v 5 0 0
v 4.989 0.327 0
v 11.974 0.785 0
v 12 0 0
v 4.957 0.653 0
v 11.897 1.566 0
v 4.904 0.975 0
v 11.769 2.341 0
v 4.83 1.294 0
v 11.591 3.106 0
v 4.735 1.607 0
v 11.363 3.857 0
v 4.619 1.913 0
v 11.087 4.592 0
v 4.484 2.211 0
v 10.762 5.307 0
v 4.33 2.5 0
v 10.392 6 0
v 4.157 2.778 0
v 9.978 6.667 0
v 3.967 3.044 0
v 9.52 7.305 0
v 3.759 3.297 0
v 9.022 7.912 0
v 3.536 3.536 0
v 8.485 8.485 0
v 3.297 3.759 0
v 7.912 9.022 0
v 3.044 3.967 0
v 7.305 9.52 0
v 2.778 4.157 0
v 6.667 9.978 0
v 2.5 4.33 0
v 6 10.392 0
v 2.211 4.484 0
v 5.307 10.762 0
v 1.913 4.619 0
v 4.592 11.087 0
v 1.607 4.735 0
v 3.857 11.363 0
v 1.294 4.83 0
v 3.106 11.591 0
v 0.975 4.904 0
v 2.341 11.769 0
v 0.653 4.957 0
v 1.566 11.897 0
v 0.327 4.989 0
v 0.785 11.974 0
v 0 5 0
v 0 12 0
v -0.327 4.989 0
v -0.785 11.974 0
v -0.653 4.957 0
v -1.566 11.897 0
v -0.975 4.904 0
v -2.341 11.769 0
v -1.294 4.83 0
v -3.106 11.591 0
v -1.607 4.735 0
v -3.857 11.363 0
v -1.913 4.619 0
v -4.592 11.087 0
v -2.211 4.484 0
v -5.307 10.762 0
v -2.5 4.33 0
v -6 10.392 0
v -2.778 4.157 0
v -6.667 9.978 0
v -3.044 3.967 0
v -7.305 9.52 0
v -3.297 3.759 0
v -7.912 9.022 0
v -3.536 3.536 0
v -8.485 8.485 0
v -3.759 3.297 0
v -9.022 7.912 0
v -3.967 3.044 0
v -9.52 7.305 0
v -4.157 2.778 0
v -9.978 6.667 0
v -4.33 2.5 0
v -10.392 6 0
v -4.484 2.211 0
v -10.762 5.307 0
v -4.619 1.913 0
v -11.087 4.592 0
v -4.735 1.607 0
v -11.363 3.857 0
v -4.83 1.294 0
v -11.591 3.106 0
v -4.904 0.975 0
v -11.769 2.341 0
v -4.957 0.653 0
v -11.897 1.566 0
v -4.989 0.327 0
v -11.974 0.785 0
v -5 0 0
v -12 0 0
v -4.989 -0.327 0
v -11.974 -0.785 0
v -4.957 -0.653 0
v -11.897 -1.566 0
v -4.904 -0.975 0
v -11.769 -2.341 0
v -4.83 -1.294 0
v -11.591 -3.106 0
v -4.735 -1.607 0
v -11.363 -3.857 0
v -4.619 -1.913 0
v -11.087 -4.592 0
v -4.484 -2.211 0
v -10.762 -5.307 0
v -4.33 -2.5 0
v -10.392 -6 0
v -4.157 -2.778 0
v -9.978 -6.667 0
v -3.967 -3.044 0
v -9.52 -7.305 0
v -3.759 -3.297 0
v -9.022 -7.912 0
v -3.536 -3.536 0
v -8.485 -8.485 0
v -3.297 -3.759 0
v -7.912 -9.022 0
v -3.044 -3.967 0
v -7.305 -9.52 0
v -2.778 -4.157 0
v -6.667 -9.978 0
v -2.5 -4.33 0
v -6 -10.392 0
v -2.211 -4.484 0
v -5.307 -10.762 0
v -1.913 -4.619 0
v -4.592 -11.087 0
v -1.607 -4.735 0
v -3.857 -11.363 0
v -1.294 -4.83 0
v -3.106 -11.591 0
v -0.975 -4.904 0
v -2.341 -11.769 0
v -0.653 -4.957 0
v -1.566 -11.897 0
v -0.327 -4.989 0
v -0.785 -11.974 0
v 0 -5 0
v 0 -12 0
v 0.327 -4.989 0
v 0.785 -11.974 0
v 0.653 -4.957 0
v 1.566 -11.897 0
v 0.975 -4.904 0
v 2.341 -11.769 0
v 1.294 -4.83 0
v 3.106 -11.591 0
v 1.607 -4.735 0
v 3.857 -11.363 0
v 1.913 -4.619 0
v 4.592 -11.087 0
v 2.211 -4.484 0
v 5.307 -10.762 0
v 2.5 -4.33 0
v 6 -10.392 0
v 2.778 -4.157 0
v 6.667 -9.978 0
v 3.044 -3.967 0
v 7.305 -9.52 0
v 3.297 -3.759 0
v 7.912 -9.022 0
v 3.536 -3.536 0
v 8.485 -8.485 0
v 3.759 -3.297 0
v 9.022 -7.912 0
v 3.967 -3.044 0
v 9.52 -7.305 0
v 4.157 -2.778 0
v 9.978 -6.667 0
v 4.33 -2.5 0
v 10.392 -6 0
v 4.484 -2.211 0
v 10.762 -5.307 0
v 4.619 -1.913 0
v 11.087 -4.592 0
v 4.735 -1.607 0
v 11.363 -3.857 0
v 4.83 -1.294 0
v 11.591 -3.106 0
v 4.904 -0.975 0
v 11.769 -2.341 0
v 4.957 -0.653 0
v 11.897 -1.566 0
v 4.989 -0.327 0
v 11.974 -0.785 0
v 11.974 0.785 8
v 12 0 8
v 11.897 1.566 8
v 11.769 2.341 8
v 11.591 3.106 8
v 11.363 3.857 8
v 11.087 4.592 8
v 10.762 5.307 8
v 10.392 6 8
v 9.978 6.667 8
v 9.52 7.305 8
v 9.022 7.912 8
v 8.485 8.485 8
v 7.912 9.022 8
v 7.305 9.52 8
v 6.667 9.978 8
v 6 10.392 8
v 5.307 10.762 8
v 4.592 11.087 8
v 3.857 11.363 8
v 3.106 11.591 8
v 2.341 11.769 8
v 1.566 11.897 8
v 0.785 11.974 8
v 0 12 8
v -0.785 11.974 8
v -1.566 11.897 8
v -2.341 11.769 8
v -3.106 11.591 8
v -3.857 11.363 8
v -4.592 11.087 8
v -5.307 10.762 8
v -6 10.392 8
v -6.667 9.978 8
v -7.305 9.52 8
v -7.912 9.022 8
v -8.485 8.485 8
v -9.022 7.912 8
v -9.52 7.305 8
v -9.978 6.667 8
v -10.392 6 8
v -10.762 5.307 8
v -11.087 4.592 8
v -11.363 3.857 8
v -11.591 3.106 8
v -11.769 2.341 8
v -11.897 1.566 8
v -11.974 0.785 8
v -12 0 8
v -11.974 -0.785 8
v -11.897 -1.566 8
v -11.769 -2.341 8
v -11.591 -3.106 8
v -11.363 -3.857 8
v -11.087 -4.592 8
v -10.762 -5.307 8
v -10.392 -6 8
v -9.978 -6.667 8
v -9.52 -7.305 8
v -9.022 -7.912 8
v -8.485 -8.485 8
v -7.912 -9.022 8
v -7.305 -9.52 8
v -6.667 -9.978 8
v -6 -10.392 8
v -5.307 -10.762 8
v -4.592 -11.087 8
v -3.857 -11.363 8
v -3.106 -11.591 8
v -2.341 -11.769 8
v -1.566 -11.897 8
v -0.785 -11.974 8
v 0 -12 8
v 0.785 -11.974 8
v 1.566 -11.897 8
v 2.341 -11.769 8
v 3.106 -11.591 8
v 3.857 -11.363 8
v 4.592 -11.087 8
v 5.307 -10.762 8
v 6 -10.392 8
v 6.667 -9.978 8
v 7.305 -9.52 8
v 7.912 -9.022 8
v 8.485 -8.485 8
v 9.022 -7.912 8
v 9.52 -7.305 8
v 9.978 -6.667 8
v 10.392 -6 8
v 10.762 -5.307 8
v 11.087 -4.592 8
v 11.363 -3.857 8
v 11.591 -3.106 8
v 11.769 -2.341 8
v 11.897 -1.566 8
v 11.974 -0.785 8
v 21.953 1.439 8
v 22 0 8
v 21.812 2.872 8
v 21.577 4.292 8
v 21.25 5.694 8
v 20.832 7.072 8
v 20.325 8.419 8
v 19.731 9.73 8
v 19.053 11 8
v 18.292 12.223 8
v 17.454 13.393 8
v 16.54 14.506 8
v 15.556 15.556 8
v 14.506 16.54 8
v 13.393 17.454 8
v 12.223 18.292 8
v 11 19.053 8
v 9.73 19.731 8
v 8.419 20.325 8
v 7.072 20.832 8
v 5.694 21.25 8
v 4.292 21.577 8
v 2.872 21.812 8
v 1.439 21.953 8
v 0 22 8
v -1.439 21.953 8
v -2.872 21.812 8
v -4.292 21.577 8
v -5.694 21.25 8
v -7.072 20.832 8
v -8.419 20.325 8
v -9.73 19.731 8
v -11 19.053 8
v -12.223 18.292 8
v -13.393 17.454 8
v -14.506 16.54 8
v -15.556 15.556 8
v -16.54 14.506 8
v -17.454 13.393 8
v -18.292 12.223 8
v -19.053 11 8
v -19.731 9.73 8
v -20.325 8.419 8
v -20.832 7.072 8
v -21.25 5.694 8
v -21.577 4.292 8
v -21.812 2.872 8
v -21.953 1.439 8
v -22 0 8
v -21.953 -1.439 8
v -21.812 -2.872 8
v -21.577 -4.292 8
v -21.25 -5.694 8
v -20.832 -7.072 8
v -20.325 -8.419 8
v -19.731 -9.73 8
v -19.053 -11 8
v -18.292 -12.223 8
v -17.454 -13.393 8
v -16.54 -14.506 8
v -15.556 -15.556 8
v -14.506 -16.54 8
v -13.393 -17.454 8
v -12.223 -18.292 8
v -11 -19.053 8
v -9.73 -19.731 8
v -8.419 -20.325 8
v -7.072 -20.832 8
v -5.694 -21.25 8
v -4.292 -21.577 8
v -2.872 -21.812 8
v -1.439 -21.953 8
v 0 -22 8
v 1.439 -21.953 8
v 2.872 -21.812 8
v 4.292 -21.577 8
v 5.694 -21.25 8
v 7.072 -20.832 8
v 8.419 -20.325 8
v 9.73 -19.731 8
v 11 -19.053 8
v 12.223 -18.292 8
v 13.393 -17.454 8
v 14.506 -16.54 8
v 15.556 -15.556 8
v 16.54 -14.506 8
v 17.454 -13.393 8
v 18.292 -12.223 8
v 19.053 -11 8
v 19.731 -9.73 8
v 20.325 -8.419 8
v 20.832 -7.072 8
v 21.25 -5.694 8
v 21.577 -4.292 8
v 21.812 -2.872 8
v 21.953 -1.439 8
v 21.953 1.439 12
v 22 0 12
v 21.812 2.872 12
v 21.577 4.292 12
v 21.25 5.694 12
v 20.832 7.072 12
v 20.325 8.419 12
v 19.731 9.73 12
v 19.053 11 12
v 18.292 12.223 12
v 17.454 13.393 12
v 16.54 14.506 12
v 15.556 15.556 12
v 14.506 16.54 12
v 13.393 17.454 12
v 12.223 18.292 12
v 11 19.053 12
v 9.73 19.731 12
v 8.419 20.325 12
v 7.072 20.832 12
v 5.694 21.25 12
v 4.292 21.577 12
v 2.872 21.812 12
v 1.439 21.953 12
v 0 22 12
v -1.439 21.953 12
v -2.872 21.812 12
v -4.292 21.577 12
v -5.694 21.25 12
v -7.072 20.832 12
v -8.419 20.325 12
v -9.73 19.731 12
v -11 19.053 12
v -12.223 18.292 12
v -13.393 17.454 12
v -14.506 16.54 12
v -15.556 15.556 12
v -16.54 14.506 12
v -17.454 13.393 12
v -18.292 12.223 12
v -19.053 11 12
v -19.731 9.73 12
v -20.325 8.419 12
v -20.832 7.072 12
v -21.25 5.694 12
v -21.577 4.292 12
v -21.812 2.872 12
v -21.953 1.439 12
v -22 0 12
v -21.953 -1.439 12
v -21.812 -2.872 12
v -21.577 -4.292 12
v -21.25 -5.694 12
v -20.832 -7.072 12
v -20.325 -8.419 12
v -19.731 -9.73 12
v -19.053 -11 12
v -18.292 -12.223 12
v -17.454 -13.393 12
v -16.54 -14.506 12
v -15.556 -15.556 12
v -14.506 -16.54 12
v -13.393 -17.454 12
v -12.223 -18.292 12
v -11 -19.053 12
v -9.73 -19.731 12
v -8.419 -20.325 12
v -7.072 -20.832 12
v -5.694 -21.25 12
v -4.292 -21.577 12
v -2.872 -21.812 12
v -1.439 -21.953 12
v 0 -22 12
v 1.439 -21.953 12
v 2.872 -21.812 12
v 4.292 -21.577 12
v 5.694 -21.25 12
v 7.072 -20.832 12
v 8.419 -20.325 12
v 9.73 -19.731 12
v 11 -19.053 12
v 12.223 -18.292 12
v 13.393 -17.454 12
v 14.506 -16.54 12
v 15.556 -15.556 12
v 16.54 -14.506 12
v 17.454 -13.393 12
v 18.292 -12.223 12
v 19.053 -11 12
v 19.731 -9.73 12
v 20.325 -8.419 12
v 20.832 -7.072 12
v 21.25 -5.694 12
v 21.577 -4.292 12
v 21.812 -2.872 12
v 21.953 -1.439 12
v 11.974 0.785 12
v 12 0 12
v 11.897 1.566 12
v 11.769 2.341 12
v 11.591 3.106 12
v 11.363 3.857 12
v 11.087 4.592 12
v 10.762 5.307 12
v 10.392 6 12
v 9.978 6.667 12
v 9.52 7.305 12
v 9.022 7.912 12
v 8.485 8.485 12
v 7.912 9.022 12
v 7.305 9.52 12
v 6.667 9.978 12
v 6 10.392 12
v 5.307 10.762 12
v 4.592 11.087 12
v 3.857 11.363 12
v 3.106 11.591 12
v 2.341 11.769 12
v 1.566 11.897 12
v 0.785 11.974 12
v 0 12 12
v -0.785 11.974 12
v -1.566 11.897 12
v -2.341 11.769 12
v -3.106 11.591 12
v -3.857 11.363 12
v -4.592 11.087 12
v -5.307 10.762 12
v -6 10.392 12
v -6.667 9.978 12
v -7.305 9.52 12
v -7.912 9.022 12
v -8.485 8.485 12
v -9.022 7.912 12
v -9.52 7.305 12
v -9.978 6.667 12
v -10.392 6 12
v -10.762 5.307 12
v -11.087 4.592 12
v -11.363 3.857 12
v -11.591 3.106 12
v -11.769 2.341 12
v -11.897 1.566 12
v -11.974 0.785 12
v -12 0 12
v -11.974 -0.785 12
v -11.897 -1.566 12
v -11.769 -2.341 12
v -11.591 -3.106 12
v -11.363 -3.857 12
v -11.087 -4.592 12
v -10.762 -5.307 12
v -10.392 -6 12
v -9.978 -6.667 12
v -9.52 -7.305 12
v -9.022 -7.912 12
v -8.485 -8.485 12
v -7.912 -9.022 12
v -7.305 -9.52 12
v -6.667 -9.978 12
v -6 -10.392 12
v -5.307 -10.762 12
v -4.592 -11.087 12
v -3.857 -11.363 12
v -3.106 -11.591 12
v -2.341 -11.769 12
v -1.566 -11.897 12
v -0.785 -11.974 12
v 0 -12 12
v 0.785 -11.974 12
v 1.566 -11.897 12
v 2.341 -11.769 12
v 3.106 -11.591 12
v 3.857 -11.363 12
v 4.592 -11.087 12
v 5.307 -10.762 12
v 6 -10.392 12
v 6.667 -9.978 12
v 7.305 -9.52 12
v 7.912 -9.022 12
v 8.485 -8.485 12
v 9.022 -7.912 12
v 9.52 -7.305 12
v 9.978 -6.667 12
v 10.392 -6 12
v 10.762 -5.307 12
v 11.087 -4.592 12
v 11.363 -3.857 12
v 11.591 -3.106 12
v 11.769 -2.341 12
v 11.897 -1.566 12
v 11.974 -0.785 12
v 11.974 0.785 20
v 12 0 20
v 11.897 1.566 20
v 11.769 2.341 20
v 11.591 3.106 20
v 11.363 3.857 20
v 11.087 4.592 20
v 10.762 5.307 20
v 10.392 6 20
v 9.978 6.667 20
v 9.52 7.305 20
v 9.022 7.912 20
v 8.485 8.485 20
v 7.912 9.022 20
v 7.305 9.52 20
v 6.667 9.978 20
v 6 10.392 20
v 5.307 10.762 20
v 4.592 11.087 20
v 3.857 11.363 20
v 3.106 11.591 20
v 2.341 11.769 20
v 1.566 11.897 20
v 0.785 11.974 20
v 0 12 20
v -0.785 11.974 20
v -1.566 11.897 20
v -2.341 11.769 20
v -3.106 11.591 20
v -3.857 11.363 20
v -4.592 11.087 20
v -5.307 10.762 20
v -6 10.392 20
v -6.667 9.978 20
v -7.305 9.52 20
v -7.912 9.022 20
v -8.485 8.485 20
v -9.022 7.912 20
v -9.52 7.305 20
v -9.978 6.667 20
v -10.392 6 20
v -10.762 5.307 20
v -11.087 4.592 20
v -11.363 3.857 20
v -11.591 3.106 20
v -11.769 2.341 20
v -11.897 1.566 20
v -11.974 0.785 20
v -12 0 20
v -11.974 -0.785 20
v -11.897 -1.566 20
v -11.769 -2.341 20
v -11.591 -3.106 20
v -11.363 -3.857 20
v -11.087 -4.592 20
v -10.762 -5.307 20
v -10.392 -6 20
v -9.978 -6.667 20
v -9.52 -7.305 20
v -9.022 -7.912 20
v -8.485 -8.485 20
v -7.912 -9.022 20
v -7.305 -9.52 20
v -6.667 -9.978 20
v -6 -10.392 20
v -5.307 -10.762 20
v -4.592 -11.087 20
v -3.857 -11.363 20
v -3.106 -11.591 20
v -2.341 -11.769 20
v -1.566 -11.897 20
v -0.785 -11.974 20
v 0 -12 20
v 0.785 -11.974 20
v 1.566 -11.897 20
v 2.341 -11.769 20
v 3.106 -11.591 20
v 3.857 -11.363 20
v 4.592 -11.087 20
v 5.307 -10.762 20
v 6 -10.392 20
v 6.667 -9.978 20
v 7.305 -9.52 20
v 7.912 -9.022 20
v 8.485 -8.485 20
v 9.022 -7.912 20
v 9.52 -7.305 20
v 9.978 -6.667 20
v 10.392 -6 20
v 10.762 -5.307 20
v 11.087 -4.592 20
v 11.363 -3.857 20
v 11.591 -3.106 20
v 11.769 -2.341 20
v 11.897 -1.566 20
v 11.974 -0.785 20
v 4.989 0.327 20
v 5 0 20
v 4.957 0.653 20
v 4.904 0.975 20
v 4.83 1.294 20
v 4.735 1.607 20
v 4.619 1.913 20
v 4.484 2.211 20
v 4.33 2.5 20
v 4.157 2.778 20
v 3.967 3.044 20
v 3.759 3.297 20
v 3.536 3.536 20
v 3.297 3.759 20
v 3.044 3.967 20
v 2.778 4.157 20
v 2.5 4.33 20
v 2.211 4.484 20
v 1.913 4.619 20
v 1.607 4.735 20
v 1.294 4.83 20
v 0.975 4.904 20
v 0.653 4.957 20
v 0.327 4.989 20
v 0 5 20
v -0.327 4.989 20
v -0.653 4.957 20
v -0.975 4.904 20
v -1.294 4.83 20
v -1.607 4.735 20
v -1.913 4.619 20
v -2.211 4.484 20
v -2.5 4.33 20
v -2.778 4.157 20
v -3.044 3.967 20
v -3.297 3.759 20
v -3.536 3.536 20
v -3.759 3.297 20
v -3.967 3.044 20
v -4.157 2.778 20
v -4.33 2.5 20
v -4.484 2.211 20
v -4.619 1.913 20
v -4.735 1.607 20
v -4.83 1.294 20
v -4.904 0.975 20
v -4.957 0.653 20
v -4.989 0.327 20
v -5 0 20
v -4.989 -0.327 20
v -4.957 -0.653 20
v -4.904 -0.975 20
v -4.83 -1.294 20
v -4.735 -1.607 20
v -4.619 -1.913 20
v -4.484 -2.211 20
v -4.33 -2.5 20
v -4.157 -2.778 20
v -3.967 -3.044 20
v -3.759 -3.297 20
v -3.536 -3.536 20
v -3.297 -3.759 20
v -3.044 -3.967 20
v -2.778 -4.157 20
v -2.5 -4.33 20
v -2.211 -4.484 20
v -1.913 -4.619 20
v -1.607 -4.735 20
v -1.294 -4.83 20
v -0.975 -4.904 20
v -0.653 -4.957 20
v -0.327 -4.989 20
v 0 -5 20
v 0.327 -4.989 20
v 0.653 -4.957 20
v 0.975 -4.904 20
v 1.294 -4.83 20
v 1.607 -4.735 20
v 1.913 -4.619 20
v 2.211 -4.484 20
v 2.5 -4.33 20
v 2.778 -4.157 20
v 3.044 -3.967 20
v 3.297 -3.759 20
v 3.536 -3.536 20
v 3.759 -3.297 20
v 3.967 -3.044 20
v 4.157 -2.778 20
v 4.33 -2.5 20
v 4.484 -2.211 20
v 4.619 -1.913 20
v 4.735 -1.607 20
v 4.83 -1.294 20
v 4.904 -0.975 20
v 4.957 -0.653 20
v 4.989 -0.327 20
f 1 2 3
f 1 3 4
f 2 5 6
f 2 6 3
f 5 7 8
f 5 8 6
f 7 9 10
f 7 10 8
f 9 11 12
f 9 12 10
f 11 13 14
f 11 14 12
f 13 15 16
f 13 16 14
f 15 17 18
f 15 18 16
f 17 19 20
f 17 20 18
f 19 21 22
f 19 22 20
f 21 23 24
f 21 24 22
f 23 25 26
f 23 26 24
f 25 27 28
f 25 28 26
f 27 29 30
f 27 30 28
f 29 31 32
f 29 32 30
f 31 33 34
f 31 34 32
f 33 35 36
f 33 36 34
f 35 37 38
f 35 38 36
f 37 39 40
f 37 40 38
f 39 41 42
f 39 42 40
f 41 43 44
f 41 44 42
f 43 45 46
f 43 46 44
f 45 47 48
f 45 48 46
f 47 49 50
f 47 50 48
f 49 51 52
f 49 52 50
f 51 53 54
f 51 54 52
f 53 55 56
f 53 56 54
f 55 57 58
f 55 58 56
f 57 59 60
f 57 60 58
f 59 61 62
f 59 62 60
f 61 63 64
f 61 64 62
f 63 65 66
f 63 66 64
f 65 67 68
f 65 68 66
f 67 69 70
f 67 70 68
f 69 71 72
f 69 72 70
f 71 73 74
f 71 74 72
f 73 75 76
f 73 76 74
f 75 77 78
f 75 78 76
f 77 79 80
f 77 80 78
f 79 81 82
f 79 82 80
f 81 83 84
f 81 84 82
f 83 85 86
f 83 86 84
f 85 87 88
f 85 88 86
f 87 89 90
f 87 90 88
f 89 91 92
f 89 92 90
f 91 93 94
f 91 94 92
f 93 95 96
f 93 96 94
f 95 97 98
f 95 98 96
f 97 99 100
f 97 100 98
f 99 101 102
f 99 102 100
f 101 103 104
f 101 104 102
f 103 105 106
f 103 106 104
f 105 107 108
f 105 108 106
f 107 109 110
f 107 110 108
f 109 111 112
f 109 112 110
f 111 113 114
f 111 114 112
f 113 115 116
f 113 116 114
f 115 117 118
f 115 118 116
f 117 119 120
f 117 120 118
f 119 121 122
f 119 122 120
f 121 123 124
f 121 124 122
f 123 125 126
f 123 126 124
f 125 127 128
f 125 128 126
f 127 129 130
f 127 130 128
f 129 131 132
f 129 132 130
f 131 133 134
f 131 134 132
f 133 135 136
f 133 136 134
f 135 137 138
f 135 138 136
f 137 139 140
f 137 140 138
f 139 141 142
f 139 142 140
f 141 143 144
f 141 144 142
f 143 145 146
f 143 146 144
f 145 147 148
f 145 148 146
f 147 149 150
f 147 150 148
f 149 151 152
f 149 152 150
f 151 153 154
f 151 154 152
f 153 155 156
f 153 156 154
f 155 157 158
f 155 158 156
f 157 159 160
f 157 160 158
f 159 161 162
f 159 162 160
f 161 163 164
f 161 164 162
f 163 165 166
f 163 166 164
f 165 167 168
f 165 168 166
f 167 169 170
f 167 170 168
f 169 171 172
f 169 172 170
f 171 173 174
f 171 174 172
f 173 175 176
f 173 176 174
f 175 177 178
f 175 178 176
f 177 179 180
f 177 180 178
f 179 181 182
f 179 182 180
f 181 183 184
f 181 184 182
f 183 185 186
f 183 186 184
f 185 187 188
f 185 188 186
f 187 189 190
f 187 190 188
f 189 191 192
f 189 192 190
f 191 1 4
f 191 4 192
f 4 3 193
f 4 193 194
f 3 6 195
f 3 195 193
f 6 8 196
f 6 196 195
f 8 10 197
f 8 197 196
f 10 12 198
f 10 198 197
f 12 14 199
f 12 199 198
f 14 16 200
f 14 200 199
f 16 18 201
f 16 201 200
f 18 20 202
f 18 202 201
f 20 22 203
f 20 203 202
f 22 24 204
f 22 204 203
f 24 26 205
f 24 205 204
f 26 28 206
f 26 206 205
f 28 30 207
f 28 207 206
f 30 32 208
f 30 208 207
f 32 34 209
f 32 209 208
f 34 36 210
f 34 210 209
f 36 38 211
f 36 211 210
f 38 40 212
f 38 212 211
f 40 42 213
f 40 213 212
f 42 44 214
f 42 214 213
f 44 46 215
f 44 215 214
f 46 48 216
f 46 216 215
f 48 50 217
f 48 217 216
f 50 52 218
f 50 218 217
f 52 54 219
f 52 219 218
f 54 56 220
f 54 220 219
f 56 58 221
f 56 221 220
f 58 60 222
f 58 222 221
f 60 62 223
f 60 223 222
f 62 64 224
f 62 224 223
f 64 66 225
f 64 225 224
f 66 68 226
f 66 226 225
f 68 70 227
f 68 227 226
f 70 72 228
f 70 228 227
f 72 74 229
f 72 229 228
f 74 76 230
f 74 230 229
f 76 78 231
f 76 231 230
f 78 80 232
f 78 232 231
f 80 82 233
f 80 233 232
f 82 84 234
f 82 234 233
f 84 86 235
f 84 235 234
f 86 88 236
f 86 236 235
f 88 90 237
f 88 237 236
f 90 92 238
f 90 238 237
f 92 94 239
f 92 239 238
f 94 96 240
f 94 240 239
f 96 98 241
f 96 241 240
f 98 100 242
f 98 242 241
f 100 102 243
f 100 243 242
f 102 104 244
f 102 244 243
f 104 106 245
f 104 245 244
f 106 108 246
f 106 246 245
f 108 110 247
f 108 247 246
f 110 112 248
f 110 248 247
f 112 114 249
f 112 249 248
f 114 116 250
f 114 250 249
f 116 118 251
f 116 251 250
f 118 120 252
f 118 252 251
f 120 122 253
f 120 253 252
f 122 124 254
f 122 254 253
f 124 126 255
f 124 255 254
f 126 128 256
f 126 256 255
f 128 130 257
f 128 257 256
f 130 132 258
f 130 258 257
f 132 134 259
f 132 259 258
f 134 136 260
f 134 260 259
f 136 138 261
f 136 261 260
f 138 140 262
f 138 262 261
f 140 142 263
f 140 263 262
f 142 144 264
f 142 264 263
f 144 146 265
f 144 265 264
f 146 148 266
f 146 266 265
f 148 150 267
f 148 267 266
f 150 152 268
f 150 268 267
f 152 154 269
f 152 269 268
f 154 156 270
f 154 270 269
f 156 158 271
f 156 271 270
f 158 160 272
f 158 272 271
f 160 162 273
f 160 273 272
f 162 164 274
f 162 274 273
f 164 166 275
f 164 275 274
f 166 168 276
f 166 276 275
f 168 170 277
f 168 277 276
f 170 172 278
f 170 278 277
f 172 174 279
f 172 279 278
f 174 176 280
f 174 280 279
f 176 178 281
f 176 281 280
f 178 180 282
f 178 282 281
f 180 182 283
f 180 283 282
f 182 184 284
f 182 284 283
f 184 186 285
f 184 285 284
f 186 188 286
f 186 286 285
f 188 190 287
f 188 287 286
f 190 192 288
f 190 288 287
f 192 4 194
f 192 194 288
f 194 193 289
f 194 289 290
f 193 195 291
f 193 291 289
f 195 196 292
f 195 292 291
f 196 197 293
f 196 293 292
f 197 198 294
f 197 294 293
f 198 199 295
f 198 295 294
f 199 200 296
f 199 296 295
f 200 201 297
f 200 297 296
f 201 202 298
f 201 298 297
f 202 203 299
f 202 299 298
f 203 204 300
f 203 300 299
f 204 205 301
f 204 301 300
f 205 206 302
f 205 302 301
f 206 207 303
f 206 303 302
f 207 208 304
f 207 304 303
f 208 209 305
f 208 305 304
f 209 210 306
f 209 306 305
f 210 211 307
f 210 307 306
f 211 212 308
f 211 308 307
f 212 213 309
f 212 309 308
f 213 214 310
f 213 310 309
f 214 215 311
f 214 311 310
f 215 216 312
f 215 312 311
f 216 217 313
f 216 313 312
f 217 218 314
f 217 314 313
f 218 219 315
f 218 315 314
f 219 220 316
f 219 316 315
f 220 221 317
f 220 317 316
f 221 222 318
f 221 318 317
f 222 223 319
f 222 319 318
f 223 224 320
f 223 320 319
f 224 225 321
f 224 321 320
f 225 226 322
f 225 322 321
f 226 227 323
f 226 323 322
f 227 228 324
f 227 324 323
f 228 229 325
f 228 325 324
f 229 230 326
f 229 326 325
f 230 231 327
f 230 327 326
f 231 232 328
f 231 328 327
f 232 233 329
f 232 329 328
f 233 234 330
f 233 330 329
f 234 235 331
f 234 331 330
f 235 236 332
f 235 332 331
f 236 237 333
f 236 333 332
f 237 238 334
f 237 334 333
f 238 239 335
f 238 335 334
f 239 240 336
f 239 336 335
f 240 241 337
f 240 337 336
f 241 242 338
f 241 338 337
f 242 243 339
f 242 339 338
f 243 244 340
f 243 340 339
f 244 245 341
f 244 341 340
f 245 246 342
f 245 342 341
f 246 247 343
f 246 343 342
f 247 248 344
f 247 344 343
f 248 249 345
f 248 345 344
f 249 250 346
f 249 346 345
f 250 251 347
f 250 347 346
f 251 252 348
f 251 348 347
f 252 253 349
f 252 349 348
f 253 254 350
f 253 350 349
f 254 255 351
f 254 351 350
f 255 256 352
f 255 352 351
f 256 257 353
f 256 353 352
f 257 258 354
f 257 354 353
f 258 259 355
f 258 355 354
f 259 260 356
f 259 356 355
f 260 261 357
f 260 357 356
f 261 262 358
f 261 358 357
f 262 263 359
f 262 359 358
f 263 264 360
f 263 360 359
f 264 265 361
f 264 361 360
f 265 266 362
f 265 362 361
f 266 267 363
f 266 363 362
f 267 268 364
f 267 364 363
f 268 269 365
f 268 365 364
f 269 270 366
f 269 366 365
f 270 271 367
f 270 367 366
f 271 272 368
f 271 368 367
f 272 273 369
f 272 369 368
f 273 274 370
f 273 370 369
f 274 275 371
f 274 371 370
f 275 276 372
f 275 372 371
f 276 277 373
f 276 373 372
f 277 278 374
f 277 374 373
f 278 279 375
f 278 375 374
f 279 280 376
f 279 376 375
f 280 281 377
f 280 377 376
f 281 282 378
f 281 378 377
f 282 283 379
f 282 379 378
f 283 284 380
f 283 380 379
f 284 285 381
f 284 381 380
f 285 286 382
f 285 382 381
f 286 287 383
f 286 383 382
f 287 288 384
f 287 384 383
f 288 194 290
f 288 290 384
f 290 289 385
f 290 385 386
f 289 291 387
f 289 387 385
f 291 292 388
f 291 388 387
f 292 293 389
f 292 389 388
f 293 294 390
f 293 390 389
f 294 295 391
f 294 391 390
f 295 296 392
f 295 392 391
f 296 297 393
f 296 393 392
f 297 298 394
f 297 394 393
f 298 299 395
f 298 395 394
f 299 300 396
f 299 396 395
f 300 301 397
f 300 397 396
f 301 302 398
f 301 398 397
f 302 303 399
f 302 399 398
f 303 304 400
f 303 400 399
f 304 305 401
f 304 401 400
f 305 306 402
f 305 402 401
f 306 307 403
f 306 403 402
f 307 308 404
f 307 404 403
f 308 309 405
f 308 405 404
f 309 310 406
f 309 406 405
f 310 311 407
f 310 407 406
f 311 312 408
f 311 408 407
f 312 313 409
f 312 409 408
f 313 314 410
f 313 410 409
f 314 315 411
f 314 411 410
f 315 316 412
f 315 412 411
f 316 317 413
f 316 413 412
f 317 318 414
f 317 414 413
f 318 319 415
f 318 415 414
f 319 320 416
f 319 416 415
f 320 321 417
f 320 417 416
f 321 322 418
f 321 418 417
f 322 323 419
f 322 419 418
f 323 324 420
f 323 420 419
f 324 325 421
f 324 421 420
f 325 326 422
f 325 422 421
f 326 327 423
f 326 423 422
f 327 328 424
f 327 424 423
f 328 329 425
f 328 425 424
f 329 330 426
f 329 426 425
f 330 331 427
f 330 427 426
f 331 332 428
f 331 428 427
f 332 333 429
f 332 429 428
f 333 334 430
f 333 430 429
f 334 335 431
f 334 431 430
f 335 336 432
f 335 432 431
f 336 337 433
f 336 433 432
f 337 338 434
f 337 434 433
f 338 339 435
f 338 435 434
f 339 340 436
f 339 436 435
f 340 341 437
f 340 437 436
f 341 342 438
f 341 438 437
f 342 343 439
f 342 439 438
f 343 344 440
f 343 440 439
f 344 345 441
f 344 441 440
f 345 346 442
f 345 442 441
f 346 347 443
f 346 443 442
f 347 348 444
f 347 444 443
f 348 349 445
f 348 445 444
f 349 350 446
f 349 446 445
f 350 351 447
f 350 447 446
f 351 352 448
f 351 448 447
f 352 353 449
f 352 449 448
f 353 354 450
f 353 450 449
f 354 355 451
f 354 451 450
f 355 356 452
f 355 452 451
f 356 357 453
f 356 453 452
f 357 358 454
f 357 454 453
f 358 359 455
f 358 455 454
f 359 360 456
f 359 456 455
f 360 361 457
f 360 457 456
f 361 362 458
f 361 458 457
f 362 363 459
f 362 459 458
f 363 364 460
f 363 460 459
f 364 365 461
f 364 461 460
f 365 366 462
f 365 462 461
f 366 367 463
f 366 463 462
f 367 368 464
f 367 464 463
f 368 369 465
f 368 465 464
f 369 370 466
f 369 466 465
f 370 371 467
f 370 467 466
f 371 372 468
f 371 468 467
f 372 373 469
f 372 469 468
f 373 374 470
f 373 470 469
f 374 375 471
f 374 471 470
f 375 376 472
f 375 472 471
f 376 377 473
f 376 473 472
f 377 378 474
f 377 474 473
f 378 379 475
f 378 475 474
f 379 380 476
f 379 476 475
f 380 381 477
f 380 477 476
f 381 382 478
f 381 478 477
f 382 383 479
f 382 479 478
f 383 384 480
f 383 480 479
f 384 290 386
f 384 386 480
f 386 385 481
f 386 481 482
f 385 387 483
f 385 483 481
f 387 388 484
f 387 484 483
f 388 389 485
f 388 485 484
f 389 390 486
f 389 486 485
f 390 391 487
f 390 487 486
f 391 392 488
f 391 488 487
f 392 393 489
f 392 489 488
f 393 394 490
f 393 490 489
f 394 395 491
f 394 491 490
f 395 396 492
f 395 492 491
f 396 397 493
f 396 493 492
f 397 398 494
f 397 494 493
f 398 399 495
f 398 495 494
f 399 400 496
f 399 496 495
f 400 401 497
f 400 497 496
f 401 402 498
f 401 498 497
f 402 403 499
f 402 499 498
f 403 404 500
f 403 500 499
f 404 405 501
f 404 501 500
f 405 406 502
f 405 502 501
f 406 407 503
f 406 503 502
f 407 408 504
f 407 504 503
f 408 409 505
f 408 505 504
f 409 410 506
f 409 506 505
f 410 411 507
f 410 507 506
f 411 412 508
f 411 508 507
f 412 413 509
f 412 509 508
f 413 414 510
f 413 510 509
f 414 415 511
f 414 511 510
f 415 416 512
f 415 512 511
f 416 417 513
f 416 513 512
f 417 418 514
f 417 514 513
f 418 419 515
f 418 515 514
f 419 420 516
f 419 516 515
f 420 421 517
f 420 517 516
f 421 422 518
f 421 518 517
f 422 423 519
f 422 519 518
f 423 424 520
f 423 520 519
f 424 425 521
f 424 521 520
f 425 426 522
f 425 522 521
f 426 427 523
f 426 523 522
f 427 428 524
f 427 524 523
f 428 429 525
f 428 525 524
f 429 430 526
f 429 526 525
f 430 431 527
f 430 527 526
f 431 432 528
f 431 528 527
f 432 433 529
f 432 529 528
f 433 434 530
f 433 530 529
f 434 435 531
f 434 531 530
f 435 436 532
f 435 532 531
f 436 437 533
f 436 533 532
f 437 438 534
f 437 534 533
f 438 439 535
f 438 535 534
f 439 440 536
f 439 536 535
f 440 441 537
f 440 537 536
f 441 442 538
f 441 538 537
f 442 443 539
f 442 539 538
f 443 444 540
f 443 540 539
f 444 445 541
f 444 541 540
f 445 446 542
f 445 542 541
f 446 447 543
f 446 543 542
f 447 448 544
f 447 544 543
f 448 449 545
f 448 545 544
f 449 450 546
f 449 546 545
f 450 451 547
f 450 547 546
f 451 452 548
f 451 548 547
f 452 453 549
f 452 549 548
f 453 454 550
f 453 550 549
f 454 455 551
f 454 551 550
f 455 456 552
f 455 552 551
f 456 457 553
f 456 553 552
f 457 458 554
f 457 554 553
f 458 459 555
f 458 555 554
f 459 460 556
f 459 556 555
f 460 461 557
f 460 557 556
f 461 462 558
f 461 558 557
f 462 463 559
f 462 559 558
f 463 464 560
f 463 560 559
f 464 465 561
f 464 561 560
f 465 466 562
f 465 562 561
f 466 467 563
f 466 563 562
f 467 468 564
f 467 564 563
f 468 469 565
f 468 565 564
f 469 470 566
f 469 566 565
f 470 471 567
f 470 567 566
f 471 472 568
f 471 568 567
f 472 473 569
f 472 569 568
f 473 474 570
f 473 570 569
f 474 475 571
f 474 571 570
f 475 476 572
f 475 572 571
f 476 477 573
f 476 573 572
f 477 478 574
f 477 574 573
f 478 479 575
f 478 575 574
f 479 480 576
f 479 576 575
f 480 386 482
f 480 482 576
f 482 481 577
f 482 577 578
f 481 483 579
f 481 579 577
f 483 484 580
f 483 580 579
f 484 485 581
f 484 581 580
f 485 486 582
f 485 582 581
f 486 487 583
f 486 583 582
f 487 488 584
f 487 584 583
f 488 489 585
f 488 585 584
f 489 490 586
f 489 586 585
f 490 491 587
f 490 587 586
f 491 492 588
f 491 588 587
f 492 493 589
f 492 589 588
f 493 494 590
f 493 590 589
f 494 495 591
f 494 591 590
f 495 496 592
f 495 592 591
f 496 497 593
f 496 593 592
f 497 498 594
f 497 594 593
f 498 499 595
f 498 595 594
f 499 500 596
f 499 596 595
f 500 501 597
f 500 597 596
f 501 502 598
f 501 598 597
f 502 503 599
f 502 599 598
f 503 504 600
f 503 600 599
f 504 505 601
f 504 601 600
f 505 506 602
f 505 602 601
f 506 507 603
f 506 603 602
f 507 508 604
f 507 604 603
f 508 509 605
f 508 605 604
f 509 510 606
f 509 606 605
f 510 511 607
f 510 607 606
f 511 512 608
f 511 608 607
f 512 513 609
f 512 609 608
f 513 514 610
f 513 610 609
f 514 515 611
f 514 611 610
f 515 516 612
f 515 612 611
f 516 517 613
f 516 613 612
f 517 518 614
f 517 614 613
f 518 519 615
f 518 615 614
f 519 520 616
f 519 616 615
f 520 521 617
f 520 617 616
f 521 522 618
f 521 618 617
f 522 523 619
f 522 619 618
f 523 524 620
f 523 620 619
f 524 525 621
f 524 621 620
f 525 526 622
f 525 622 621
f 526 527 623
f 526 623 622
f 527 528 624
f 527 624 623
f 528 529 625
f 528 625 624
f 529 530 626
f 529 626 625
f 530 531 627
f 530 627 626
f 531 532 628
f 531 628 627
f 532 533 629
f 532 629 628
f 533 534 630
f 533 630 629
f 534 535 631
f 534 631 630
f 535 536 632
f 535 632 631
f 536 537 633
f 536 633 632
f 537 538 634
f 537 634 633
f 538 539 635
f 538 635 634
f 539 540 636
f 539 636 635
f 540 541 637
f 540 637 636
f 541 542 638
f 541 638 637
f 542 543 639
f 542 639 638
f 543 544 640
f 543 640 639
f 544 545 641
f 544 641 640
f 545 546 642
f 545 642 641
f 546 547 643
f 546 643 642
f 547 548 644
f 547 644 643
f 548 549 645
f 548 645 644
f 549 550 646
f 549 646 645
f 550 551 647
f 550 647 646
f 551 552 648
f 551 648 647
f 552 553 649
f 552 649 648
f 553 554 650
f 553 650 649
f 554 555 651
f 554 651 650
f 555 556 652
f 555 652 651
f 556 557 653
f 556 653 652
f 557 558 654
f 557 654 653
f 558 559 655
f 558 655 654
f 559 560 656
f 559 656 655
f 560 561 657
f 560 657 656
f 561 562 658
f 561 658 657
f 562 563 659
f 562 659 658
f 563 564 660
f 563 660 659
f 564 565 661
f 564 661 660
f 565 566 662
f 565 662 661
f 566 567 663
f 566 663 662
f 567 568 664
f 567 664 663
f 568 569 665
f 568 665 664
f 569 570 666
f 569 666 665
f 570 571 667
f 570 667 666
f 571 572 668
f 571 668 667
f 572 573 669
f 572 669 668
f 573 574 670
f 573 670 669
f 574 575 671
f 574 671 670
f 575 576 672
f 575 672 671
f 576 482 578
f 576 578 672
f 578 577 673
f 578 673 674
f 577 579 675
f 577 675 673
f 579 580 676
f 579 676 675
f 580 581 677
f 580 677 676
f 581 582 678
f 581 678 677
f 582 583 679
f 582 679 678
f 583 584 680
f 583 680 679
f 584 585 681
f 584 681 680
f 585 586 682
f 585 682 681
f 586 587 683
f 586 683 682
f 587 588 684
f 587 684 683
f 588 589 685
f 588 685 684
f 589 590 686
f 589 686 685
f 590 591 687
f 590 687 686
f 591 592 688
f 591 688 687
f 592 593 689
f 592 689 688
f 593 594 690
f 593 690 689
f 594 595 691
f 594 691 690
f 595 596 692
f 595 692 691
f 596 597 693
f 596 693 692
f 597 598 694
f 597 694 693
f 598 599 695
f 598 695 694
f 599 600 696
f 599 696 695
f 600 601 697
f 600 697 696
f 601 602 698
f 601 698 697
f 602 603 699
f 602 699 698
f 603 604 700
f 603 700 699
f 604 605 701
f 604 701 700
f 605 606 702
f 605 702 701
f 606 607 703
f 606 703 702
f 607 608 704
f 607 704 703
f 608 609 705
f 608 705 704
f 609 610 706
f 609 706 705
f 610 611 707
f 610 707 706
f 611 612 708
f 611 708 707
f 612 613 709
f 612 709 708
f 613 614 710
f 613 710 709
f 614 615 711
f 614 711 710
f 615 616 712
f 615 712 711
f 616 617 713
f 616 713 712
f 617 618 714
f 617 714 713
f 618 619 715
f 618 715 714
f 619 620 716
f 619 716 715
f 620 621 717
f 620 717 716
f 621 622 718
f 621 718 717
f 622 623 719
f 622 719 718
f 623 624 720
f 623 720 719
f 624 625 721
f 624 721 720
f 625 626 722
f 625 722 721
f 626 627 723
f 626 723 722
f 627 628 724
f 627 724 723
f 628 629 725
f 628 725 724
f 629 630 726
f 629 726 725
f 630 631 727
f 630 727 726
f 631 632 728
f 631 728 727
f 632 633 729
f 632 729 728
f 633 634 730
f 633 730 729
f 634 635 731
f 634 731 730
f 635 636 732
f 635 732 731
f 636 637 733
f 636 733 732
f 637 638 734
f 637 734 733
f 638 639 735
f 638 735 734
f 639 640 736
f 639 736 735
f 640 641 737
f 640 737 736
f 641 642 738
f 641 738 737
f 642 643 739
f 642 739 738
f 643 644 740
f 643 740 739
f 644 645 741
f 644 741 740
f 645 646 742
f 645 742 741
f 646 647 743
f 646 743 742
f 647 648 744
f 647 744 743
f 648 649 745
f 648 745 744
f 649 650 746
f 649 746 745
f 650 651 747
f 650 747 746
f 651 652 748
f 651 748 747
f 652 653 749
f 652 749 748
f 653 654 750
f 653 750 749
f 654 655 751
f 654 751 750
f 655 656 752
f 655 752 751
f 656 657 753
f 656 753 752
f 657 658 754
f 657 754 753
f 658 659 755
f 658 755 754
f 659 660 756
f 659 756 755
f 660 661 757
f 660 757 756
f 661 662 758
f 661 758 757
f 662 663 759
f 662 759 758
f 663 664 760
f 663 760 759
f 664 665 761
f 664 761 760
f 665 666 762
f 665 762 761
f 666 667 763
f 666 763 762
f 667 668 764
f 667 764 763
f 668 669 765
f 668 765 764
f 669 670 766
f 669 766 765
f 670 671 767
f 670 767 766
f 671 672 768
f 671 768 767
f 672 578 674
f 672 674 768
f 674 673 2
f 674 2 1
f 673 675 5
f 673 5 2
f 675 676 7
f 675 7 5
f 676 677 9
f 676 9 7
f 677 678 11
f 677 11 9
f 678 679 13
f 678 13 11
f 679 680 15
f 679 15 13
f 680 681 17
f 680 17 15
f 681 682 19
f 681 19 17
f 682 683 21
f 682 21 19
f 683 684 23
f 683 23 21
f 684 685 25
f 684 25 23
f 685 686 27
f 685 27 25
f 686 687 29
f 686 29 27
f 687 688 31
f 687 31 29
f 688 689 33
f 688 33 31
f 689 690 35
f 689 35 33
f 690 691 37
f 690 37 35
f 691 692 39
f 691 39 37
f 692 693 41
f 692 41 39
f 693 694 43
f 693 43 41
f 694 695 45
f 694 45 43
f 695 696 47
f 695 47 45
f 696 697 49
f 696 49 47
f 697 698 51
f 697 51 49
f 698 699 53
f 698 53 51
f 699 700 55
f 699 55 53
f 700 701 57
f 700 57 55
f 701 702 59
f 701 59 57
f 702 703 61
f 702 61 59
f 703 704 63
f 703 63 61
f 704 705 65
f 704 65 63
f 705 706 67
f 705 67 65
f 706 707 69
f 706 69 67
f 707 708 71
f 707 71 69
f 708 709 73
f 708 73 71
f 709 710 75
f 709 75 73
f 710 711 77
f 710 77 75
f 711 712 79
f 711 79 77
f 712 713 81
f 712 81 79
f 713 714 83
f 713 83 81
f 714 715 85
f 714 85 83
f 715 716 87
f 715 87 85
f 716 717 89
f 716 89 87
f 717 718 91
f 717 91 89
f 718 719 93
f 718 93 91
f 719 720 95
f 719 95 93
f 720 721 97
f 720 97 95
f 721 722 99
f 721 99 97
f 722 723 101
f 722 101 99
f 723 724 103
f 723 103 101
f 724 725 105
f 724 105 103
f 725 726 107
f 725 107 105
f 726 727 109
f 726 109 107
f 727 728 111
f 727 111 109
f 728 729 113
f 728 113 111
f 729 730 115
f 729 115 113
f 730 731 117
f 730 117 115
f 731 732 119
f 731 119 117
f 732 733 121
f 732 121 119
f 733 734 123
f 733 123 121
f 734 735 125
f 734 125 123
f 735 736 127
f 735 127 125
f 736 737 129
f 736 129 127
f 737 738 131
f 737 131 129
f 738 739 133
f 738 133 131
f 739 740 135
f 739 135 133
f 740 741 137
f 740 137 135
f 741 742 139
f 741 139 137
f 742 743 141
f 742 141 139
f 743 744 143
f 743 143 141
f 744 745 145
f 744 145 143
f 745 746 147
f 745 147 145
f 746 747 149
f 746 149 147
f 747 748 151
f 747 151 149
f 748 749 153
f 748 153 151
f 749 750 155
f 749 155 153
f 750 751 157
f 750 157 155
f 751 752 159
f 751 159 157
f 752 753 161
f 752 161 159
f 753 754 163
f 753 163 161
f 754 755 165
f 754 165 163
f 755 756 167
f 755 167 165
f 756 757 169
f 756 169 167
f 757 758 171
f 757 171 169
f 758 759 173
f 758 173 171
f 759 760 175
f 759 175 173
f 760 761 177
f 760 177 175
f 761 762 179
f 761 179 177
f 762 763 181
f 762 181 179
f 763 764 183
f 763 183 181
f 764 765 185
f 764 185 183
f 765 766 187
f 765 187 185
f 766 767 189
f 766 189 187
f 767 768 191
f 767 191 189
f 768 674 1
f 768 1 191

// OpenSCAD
// Original MechIntel educational model. CC0-1.0. Units: mm.
// Not a standardized or load-rated component.
$fn=96;
// Section points: [radius, height], mm. Edit to change the profile.
section=[[5, 0], [12, 0], [12, 8], [22, 8], [22, 12], [12, 12], [12, 20], [5, 20]];
rotate_extrude($fn=96) polygon(points=section);
